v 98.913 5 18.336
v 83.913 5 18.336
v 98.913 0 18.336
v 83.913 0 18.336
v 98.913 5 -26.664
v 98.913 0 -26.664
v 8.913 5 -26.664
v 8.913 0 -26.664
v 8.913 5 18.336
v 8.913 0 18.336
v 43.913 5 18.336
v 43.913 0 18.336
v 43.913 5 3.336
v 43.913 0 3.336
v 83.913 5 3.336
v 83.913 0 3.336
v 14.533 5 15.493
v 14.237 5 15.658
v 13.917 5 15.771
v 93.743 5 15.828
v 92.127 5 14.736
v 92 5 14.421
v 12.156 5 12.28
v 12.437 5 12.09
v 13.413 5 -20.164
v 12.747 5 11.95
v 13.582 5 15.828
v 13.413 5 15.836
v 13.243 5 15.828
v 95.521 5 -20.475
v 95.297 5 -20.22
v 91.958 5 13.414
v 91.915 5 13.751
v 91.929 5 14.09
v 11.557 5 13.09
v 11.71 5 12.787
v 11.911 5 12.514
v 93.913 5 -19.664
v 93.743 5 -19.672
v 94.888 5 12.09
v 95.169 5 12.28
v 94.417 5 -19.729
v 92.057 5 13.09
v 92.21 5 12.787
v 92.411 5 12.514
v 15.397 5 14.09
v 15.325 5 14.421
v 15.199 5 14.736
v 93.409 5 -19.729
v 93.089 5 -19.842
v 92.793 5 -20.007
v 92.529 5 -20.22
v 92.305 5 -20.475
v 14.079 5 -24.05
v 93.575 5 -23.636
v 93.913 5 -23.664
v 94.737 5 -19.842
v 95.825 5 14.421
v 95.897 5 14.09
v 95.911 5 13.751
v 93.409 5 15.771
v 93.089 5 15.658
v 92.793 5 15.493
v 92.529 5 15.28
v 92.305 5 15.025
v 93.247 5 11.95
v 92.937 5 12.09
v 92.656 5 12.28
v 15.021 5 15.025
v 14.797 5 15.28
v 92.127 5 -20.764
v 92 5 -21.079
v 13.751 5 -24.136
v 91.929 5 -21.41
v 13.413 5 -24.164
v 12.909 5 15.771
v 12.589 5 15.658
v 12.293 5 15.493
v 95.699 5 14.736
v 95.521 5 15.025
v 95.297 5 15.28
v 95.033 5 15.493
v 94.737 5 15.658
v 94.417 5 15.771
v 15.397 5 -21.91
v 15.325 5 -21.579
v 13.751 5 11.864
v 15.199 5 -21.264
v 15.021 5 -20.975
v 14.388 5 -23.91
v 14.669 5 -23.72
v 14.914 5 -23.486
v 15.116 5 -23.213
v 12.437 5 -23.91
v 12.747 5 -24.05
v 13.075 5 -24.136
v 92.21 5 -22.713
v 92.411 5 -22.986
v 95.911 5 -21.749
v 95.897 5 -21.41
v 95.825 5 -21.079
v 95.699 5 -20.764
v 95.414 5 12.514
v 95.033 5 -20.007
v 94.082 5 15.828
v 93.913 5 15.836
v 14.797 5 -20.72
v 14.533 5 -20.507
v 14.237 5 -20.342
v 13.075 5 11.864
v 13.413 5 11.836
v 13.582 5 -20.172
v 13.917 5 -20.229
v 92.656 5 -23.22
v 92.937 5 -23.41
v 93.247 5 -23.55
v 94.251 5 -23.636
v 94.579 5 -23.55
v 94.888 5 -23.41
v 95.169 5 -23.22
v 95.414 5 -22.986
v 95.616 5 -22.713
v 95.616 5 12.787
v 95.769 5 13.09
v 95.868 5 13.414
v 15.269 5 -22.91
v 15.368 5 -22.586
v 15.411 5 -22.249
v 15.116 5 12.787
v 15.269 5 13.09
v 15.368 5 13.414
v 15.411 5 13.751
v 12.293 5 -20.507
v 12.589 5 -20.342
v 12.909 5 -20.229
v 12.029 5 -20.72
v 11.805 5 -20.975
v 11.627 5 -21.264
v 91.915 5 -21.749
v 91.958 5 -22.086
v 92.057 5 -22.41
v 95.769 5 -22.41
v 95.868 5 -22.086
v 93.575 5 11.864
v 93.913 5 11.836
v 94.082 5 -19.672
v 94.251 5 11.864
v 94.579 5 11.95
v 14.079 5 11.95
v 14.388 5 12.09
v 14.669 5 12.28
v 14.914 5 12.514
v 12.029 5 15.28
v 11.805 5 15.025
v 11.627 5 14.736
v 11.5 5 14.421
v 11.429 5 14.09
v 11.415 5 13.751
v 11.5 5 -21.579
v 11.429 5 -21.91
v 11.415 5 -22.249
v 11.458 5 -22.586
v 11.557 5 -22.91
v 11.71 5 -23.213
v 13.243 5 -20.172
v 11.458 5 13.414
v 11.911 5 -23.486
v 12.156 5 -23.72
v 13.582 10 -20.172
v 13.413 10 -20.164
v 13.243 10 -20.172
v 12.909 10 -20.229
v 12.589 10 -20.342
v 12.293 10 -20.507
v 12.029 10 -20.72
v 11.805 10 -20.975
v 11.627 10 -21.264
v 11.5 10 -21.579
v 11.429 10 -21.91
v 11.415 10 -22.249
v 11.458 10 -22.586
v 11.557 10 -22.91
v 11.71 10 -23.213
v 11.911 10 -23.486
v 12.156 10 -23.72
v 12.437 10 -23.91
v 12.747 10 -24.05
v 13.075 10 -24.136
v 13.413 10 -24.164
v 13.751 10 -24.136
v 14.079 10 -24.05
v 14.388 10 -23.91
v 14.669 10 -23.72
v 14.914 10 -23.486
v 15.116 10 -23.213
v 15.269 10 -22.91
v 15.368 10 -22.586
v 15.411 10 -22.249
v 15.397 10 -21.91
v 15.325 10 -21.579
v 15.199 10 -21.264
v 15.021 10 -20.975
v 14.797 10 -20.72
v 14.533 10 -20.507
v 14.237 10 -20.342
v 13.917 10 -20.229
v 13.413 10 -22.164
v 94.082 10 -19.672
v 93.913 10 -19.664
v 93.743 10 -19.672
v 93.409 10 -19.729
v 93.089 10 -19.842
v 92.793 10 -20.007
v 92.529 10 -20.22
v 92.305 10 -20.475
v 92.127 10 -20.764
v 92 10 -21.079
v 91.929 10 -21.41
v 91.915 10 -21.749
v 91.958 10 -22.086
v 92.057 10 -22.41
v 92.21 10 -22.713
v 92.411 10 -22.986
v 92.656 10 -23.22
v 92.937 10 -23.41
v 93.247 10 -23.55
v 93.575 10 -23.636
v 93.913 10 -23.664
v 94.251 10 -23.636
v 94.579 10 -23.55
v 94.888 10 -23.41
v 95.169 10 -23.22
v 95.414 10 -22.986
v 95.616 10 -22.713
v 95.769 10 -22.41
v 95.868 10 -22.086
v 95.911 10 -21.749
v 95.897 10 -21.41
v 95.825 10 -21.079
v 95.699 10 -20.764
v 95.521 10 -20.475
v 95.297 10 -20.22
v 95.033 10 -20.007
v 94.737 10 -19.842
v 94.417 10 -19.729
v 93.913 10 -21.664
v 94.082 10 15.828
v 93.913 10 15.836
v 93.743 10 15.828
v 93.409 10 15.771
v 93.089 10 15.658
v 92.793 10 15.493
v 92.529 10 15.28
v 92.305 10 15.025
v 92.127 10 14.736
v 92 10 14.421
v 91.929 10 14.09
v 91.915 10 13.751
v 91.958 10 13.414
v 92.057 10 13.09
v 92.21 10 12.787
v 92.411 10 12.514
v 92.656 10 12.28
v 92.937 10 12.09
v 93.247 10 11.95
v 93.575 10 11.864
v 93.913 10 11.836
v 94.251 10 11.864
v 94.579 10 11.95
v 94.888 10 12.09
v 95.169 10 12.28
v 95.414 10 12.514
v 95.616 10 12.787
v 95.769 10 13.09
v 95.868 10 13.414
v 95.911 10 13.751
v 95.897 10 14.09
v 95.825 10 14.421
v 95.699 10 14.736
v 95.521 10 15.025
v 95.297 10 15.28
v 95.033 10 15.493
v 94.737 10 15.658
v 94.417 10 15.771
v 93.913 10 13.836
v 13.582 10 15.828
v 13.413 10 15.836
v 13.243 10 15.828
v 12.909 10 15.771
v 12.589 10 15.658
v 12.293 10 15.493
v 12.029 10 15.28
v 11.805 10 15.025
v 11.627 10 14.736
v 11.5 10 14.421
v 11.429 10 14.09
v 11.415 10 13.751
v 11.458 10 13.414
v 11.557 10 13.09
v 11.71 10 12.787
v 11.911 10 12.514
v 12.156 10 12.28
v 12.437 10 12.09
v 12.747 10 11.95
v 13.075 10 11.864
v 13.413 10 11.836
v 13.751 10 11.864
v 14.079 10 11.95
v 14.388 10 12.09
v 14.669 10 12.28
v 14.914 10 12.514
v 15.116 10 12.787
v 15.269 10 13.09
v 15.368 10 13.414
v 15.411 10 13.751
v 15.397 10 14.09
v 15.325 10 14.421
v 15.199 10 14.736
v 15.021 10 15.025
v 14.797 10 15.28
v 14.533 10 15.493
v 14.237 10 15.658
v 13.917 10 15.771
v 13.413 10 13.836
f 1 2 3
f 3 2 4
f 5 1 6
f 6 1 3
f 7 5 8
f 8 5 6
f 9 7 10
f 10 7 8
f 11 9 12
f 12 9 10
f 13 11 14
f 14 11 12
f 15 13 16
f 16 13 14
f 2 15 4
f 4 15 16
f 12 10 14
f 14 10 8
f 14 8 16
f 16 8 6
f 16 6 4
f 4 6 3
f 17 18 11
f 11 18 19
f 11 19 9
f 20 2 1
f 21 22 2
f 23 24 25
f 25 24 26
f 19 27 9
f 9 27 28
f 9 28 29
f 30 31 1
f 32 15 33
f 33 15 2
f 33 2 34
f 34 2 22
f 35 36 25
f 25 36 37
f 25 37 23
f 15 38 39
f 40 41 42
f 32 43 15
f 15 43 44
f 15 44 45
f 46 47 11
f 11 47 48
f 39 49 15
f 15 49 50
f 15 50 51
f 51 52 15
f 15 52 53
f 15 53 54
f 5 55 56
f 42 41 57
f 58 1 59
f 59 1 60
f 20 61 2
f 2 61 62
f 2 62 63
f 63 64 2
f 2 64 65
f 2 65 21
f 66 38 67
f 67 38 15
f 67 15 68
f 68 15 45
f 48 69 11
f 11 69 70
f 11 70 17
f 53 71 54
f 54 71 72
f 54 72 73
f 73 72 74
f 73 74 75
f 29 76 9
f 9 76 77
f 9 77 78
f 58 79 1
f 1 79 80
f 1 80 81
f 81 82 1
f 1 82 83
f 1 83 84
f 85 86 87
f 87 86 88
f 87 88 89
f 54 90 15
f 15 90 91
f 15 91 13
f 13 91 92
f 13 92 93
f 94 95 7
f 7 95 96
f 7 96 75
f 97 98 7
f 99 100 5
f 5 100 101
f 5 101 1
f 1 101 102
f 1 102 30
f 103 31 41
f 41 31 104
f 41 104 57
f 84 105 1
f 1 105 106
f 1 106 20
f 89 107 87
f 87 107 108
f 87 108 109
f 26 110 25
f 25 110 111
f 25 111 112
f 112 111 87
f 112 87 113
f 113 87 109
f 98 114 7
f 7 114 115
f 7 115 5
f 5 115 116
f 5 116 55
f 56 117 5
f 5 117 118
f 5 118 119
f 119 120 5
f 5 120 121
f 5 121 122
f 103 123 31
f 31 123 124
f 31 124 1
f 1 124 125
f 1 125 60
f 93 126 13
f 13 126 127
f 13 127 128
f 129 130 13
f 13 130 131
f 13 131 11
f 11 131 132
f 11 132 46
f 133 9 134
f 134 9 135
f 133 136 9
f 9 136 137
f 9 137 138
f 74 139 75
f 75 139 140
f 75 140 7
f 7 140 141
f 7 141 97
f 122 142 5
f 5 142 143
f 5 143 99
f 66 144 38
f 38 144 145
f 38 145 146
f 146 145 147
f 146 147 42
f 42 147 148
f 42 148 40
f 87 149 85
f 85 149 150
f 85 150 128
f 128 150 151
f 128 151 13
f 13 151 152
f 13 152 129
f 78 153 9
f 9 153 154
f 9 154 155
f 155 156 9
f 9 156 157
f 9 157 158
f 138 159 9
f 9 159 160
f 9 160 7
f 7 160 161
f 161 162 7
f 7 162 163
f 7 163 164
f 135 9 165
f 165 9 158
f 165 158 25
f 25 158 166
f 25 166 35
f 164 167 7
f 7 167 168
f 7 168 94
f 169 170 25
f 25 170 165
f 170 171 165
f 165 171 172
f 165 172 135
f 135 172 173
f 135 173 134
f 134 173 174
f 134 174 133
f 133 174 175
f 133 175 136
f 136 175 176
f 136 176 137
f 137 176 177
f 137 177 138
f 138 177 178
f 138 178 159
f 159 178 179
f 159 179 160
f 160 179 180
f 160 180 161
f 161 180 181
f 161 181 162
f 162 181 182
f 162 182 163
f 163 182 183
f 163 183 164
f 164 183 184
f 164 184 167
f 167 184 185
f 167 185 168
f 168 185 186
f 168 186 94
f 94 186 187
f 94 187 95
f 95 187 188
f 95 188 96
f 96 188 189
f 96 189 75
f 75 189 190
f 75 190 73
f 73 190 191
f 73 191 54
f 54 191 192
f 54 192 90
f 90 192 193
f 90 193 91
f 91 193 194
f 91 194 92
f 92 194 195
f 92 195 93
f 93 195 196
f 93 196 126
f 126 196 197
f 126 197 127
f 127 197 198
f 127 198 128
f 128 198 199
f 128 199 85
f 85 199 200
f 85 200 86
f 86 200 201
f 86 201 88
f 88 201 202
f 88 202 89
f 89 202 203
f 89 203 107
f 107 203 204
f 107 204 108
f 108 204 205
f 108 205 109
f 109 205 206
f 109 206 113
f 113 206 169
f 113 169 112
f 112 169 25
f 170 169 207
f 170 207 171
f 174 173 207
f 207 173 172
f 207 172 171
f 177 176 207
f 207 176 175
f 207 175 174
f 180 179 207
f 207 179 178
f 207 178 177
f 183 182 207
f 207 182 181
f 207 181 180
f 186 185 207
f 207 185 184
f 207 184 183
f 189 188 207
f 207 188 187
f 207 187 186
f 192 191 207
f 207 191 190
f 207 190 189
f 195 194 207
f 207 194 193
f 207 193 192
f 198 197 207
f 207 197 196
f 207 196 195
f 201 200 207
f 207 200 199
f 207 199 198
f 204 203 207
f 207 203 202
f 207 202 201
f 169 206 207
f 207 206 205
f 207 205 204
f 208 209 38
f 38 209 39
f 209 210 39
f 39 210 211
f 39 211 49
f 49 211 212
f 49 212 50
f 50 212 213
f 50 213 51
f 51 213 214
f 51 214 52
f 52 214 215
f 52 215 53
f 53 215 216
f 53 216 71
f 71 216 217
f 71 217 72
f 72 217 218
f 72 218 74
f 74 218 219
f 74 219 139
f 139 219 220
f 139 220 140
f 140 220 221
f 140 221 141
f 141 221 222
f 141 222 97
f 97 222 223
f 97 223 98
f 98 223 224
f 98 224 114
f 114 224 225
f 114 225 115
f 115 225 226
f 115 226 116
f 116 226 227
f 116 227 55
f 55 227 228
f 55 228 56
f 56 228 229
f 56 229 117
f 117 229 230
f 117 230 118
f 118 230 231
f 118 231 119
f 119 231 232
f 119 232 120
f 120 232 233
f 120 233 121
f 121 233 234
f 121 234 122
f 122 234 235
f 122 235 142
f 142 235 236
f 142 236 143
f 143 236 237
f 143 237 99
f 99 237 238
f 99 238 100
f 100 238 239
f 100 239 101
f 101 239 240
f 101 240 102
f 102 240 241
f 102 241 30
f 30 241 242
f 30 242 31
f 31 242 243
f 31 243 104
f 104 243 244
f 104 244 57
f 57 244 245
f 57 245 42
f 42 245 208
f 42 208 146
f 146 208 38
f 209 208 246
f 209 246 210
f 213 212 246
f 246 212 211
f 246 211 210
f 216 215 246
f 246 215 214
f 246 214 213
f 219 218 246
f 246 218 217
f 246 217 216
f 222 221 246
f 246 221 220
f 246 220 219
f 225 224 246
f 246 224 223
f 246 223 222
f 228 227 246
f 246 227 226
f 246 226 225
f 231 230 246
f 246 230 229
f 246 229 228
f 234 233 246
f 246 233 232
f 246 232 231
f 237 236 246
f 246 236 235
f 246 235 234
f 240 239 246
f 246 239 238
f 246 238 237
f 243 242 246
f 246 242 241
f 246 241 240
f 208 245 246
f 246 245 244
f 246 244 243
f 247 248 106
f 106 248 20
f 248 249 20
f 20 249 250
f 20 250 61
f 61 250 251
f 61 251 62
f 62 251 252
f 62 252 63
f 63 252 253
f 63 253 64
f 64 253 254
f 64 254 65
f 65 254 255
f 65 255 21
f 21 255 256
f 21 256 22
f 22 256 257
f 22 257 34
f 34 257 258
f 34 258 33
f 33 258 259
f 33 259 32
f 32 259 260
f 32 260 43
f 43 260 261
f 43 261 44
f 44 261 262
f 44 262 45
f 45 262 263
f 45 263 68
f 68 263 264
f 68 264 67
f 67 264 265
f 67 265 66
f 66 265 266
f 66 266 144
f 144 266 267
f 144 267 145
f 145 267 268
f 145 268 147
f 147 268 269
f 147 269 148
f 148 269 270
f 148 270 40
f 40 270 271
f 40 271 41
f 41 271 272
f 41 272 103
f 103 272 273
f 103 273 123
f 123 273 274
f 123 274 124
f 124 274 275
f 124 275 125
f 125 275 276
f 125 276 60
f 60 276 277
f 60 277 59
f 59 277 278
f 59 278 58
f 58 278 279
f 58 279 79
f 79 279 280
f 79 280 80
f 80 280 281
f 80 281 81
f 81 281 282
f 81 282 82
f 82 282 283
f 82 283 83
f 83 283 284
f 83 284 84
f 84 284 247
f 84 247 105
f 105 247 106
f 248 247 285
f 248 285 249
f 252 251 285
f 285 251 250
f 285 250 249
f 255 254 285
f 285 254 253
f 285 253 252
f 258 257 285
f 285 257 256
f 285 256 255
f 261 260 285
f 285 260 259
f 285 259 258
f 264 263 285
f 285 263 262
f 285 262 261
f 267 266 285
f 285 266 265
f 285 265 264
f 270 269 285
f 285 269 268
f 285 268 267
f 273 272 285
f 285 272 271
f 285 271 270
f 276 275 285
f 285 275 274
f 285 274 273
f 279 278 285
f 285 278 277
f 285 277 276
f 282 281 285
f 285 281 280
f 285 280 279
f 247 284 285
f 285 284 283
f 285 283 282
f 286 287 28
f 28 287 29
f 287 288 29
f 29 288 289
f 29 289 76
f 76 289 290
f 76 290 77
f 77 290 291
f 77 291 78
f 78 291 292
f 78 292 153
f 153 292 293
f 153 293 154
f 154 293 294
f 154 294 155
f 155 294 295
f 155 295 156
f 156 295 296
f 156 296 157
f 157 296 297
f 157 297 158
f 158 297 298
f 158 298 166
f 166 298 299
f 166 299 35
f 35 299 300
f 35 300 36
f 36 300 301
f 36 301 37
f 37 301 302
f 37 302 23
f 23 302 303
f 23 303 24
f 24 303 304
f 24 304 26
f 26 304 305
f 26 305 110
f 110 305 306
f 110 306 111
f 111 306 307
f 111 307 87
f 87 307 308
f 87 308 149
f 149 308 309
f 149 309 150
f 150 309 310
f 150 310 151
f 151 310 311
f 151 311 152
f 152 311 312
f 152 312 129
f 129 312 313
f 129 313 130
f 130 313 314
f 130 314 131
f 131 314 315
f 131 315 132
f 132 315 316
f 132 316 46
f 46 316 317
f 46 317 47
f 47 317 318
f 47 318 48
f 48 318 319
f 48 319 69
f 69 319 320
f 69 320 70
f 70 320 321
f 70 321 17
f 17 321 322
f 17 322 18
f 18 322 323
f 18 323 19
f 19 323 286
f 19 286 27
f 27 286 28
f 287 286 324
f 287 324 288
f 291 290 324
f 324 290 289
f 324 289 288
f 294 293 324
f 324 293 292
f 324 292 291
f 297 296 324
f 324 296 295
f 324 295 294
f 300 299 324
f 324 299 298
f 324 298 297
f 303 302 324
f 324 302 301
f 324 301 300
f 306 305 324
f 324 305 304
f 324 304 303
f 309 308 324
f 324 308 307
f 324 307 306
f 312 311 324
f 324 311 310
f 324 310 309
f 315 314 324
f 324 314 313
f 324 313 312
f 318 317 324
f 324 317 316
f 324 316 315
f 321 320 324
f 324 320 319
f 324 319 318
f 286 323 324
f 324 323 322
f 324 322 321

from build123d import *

# Parameters (mm, degrees)
BOSS_EXTRUDE9_DEPTH  = 5
SKETCH6_3_R          = 2
BOSS_EXTRUDE10_DEPTH = 10


with BuildPart() as part:
    # Sketch6 → Boss-Extrude9 (new body)
    with BuildSketch(Plane(origin=(0, 0, 0), x_dir=(1, 0, 0), z_dir=(0, 1, 0))):
        Polygon((98.912801806, 26.664335605), (8.912801806, 26.664335605), (8.912801806, -18.335664395), (43.912801806, -18.335664395), (43.912801806, -3.335664395), (83.912801806, -3.335664395), (83.912801806, -18.335664395), (98.912801806, -18.335664395), align=None)
    extrude(amount=BOSS_EXTRUDE9_DEPTH)

    # Sketch6<3> → Boss-Extrude10 (add)
    with BuildSketch(Plane(origin=(0, 0, 0), x_dir=(1, 0, 0), z_dir=(0, 1, 0))):
        with Locations((13.412801806, 22.164335605)):
            Circle(SKETCH6_3_R)
        with Locations((13.412801806, -13.835664395)):
            Circle(SKETCH6_3_R)
        with Locations((93.912801806, -13.835664395)):
            Circle(SKETCH6_3_R)
        with Locations((93.912801806, 21.664335605)):
            Circle(SKETCH6_3_R)
    extrude(amount=BOSS_EXTRUDE10_DEPTH)


solid = part.part
